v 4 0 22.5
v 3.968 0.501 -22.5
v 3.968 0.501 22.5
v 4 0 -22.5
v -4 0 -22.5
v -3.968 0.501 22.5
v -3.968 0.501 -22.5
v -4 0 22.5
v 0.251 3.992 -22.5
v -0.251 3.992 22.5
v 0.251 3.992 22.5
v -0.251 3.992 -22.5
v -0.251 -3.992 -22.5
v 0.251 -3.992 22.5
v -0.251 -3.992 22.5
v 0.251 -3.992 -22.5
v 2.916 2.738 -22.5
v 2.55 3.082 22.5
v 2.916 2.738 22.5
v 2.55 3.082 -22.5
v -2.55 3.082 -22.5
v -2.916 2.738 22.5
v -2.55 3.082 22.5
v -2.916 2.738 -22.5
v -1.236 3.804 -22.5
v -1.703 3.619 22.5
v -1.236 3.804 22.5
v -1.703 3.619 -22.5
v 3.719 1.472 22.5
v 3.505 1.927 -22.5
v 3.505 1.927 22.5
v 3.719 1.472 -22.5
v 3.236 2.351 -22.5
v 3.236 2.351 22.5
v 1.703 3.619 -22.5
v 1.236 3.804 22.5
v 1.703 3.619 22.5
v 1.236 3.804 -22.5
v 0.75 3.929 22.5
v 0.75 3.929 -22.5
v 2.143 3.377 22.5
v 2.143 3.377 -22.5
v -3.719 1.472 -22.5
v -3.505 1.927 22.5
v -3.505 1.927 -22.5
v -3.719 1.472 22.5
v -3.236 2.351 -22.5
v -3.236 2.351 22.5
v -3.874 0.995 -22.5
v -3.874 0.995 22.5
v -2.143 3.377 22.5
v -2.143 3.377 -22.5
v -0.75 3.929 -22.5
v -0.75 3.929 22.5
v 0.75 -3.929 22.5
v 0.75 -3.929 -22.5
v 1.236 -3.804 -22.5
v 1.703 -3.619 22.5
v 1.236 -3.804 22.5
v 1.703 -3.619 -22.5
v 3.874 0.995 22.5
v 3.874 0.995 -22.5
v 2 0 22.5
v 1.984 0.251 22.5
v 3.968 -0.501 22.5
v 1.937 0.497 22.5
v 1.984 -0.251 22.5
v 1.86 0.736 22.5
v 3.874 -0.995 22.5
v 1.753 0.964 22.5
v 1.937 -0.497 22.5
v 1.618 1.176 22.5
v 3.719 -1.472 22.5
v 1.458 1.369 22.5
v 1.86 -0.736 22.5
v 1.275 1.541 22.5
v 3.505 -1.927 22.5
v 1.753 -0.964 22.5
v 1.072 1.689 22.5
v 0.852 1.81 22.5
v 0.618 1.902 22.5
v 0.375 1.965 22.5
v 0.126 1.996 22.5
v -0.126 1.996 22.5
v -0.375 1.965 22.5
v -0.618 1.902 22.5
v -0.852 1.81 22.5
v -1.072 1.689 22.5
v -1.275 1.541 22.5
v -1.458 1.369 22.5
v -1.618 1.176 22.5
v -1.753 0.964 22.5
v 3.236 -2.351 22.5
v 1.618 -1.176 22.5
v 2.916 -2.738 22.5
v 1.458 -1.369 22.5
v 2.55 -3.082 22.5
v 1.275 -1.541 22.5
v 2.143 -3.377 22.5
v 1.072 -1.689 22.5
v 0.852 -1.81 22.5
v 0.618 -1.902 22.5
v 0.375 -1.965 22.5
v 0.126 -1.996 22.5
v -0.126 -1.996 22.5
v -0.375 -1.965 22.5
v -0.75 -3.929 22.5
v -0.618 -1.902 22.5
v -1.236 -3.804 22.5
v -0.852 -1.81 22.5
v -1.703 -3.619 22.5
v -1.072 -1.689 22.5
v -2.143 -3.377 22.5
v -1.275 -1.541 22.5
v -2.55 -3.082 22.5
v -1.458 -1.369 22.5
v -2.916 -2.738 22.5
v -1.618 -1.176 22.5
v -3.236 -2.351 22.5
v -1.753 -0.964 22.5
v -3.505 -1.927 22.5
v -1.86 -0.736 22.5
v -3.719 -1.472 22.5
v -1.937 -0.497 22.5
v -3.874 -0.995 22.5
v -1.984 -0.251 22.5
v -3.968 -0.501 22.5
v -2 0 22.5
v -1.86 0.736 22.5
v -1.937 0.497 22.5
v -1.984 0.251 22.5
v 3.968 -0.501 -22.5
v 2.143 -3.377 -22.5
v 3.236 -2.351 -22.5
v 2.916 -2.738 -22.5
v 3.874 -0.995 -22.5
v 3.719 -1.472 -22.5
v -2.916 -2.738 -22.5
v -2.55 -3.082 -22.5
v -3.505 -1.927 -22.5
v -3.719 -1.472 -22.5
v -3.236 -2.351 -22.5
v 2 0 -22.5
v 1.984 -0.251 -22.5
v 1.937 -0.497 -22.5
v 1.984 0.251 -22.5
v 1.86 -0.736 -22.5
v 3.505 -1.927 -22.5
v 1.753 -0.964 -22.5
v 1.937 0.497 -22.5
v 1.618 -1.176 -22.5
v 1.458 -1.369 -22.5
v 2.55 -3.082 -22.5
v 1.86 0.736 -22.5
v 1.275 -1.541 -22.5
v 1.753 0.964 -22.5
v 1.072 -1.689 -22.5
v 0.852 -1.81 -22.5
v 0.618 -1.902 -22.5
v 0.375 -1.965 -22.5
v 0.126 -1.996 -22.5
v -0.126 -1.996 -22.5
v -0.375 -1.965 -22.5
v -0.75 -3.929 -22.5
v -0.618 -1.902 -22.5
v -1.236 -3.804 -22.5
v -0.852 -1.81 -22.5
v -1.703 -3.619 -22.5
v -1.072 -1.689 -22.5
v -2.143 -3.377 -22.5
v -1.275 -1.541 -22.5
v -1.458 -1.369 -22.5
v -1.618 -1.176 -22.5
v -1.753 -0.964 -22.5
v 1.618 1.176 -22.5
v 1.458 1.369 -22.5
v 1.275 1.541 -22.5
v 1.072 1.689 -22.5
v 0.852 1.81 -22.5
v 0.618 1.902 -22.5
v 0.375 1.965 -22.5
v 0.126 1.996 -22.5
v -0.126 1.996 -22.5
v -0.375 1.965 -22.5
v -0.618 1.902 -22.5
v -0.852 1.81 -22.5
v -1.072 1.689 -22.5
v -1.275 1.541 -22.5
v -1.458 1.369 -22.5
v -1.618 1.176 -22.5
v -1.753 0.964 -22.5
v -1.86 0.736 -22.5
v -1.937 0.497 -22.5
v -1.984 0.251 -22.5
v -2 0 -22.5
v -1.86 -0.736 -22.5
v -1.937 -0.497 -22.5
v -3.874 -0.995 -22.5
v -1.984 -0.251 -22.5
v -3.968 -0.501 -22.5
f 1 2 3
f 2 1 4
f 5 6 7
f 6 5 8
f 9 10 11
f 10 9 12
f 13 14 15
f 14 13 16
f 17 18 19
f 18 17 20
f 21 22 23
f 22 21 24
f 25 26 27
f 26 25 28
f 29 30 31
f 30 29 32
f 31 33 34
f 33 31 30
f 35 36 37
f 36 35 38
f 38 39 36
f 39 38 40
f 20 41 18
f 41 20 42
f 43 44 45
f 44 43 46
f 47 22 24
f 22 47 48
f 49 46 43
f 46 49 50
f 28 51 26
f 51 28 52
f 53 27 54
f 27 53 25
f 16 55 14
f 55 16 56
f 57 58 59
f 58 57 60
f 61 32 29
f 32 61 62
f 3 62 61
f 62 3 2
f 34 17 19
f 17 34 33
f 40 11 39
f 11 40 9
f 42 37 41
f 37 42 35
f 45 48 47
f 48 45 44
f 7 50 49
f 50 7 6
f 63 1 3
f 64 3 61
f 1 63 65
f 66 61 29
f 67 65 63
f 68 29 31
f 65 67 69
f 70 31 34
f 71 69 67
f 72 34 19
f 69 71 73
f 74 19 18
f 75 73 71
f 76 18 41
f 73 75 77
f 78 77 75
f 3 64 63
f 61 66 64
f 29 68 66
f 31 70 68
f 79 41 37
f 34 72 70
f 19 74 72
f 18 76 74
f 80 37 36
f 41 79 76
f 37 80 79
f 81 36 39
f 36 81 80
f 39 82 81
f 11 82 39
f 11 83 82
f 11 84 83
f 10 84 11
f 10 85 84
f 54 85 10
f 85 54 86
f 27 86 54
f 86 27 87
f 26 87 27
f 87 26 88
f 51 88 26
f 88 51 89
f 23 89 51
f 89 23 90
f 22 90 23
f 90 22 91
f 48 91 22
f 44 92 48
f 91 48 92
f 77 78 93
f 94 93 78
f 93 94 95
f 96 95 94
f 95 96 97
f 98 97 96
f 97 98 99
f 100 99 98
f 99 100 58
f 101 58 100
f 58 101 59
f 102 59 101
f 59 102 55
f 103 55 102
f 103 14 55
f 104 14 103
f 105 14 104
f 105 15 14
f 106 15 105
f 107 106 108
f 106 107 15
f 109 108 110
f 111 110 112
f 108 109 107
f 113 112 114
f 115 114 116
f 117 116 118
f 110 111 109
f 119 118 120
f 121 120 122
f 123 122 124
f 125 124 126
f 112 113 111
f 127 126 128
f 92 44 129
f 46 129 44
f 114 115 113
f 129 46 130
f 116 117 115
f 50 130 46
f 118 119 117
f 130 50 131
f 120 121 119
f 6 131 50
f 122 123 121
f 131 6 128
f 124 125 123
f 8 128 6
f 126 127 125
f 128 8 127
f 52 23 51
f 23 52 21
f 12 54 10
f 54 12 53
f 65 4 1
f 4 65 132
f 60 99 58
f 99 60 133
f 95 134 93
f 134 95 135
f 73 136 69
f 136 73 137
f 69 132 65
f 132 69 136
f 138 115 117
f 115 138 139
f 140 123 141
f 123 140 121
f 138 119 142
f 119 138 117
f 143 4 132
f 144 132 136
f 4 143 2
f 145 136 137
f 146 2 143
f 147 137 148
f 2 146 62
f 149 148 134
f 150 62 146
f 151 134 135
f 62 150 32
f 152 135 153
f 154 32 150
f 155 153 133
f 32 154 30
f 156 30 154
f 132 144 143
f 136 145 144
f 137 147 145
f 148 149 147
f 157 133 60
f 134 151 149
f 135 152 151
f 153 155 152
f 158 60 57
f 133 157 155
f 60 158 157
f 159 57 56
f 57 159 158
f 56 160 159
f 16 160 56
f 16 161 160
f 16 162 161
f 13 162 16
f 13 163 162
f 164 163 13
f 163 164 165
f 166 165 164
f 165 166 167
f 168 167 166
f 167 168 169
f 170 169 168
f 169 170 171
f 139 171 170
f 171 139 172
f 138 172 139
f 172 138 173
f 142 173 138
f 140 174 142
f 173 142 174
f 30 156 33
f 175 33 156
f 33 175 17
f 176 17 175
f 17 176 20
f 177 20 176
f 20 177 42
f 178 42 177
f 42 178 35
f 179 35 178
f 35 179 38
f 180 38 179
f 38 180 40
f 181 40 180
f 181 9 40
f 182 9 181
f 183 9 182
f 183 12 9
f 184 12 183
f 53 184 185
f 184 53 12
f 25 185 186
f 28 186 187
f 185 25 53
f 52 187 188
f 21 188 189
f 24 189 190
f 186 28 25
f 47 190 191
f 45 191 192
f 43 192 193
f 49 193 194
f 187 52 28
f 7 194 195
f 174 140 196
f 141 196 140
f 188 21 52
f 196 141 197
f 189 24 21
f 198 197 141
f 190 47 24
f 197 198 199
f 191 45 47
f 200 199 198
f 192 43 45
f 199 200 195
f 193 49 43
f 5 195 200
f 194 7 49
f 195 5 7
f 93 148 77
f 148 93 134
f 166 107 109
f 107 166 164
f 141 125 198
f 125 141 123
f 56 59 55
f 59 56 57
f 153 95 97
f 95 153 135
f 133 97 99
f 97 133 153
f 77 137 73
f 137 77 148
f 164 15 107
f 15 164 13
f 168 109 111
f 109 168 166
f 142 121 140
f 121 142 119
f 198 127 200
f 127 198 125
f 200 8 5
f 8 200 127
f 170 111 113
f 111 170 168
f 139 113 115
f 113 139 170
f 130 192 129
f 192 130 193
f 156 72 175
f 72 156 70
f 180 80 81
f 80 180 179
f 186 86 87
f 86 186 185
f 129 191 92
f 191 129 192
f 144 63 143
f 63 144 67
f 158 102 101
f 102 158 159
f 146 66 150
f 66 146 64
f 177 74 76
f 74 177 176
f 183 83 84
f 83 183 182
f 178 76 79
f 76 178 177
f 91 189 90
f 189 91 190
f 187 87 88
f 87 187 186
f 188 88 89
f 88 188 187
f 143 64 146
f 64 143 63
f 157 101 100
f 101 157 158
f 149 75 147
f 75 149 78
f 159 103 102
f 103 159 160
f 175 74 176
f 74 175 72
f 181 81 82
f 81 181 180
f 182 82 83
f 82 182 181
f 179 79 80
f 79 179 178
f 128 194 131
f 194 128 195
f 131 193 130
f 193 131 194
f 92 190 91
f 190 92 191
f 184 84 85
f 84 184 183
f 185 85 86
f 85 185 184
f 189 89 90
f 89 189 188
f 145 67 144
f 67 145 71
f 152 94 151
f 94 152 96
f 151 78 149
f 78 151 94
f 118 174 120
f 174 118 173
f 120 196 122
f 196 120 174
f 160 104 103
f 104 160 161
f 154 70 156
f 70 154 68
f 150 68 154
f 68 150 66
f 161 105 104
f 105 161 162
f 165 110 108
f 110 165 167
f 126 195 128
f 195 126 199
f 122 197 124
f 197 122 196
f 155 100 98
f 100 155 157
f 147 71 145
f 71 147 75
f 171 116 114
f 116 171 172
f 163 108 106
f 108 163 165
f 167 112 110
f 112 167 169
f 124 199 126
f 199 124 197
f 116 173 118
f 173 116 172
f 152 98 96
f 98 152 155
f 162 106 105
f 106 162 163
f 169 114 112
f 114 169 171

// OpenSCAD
$fn = 50;


difference() {
	union() {
		translate(v = [0, 0, -22.5000000000]) {
			cylinder(h = 45, r = 4.0000000000);
		}
	}
	union() {
		translate(v = [0, 0, -100.0000000000]) {
			cylinder(h = 200, r = 2);
		}
	}
}
